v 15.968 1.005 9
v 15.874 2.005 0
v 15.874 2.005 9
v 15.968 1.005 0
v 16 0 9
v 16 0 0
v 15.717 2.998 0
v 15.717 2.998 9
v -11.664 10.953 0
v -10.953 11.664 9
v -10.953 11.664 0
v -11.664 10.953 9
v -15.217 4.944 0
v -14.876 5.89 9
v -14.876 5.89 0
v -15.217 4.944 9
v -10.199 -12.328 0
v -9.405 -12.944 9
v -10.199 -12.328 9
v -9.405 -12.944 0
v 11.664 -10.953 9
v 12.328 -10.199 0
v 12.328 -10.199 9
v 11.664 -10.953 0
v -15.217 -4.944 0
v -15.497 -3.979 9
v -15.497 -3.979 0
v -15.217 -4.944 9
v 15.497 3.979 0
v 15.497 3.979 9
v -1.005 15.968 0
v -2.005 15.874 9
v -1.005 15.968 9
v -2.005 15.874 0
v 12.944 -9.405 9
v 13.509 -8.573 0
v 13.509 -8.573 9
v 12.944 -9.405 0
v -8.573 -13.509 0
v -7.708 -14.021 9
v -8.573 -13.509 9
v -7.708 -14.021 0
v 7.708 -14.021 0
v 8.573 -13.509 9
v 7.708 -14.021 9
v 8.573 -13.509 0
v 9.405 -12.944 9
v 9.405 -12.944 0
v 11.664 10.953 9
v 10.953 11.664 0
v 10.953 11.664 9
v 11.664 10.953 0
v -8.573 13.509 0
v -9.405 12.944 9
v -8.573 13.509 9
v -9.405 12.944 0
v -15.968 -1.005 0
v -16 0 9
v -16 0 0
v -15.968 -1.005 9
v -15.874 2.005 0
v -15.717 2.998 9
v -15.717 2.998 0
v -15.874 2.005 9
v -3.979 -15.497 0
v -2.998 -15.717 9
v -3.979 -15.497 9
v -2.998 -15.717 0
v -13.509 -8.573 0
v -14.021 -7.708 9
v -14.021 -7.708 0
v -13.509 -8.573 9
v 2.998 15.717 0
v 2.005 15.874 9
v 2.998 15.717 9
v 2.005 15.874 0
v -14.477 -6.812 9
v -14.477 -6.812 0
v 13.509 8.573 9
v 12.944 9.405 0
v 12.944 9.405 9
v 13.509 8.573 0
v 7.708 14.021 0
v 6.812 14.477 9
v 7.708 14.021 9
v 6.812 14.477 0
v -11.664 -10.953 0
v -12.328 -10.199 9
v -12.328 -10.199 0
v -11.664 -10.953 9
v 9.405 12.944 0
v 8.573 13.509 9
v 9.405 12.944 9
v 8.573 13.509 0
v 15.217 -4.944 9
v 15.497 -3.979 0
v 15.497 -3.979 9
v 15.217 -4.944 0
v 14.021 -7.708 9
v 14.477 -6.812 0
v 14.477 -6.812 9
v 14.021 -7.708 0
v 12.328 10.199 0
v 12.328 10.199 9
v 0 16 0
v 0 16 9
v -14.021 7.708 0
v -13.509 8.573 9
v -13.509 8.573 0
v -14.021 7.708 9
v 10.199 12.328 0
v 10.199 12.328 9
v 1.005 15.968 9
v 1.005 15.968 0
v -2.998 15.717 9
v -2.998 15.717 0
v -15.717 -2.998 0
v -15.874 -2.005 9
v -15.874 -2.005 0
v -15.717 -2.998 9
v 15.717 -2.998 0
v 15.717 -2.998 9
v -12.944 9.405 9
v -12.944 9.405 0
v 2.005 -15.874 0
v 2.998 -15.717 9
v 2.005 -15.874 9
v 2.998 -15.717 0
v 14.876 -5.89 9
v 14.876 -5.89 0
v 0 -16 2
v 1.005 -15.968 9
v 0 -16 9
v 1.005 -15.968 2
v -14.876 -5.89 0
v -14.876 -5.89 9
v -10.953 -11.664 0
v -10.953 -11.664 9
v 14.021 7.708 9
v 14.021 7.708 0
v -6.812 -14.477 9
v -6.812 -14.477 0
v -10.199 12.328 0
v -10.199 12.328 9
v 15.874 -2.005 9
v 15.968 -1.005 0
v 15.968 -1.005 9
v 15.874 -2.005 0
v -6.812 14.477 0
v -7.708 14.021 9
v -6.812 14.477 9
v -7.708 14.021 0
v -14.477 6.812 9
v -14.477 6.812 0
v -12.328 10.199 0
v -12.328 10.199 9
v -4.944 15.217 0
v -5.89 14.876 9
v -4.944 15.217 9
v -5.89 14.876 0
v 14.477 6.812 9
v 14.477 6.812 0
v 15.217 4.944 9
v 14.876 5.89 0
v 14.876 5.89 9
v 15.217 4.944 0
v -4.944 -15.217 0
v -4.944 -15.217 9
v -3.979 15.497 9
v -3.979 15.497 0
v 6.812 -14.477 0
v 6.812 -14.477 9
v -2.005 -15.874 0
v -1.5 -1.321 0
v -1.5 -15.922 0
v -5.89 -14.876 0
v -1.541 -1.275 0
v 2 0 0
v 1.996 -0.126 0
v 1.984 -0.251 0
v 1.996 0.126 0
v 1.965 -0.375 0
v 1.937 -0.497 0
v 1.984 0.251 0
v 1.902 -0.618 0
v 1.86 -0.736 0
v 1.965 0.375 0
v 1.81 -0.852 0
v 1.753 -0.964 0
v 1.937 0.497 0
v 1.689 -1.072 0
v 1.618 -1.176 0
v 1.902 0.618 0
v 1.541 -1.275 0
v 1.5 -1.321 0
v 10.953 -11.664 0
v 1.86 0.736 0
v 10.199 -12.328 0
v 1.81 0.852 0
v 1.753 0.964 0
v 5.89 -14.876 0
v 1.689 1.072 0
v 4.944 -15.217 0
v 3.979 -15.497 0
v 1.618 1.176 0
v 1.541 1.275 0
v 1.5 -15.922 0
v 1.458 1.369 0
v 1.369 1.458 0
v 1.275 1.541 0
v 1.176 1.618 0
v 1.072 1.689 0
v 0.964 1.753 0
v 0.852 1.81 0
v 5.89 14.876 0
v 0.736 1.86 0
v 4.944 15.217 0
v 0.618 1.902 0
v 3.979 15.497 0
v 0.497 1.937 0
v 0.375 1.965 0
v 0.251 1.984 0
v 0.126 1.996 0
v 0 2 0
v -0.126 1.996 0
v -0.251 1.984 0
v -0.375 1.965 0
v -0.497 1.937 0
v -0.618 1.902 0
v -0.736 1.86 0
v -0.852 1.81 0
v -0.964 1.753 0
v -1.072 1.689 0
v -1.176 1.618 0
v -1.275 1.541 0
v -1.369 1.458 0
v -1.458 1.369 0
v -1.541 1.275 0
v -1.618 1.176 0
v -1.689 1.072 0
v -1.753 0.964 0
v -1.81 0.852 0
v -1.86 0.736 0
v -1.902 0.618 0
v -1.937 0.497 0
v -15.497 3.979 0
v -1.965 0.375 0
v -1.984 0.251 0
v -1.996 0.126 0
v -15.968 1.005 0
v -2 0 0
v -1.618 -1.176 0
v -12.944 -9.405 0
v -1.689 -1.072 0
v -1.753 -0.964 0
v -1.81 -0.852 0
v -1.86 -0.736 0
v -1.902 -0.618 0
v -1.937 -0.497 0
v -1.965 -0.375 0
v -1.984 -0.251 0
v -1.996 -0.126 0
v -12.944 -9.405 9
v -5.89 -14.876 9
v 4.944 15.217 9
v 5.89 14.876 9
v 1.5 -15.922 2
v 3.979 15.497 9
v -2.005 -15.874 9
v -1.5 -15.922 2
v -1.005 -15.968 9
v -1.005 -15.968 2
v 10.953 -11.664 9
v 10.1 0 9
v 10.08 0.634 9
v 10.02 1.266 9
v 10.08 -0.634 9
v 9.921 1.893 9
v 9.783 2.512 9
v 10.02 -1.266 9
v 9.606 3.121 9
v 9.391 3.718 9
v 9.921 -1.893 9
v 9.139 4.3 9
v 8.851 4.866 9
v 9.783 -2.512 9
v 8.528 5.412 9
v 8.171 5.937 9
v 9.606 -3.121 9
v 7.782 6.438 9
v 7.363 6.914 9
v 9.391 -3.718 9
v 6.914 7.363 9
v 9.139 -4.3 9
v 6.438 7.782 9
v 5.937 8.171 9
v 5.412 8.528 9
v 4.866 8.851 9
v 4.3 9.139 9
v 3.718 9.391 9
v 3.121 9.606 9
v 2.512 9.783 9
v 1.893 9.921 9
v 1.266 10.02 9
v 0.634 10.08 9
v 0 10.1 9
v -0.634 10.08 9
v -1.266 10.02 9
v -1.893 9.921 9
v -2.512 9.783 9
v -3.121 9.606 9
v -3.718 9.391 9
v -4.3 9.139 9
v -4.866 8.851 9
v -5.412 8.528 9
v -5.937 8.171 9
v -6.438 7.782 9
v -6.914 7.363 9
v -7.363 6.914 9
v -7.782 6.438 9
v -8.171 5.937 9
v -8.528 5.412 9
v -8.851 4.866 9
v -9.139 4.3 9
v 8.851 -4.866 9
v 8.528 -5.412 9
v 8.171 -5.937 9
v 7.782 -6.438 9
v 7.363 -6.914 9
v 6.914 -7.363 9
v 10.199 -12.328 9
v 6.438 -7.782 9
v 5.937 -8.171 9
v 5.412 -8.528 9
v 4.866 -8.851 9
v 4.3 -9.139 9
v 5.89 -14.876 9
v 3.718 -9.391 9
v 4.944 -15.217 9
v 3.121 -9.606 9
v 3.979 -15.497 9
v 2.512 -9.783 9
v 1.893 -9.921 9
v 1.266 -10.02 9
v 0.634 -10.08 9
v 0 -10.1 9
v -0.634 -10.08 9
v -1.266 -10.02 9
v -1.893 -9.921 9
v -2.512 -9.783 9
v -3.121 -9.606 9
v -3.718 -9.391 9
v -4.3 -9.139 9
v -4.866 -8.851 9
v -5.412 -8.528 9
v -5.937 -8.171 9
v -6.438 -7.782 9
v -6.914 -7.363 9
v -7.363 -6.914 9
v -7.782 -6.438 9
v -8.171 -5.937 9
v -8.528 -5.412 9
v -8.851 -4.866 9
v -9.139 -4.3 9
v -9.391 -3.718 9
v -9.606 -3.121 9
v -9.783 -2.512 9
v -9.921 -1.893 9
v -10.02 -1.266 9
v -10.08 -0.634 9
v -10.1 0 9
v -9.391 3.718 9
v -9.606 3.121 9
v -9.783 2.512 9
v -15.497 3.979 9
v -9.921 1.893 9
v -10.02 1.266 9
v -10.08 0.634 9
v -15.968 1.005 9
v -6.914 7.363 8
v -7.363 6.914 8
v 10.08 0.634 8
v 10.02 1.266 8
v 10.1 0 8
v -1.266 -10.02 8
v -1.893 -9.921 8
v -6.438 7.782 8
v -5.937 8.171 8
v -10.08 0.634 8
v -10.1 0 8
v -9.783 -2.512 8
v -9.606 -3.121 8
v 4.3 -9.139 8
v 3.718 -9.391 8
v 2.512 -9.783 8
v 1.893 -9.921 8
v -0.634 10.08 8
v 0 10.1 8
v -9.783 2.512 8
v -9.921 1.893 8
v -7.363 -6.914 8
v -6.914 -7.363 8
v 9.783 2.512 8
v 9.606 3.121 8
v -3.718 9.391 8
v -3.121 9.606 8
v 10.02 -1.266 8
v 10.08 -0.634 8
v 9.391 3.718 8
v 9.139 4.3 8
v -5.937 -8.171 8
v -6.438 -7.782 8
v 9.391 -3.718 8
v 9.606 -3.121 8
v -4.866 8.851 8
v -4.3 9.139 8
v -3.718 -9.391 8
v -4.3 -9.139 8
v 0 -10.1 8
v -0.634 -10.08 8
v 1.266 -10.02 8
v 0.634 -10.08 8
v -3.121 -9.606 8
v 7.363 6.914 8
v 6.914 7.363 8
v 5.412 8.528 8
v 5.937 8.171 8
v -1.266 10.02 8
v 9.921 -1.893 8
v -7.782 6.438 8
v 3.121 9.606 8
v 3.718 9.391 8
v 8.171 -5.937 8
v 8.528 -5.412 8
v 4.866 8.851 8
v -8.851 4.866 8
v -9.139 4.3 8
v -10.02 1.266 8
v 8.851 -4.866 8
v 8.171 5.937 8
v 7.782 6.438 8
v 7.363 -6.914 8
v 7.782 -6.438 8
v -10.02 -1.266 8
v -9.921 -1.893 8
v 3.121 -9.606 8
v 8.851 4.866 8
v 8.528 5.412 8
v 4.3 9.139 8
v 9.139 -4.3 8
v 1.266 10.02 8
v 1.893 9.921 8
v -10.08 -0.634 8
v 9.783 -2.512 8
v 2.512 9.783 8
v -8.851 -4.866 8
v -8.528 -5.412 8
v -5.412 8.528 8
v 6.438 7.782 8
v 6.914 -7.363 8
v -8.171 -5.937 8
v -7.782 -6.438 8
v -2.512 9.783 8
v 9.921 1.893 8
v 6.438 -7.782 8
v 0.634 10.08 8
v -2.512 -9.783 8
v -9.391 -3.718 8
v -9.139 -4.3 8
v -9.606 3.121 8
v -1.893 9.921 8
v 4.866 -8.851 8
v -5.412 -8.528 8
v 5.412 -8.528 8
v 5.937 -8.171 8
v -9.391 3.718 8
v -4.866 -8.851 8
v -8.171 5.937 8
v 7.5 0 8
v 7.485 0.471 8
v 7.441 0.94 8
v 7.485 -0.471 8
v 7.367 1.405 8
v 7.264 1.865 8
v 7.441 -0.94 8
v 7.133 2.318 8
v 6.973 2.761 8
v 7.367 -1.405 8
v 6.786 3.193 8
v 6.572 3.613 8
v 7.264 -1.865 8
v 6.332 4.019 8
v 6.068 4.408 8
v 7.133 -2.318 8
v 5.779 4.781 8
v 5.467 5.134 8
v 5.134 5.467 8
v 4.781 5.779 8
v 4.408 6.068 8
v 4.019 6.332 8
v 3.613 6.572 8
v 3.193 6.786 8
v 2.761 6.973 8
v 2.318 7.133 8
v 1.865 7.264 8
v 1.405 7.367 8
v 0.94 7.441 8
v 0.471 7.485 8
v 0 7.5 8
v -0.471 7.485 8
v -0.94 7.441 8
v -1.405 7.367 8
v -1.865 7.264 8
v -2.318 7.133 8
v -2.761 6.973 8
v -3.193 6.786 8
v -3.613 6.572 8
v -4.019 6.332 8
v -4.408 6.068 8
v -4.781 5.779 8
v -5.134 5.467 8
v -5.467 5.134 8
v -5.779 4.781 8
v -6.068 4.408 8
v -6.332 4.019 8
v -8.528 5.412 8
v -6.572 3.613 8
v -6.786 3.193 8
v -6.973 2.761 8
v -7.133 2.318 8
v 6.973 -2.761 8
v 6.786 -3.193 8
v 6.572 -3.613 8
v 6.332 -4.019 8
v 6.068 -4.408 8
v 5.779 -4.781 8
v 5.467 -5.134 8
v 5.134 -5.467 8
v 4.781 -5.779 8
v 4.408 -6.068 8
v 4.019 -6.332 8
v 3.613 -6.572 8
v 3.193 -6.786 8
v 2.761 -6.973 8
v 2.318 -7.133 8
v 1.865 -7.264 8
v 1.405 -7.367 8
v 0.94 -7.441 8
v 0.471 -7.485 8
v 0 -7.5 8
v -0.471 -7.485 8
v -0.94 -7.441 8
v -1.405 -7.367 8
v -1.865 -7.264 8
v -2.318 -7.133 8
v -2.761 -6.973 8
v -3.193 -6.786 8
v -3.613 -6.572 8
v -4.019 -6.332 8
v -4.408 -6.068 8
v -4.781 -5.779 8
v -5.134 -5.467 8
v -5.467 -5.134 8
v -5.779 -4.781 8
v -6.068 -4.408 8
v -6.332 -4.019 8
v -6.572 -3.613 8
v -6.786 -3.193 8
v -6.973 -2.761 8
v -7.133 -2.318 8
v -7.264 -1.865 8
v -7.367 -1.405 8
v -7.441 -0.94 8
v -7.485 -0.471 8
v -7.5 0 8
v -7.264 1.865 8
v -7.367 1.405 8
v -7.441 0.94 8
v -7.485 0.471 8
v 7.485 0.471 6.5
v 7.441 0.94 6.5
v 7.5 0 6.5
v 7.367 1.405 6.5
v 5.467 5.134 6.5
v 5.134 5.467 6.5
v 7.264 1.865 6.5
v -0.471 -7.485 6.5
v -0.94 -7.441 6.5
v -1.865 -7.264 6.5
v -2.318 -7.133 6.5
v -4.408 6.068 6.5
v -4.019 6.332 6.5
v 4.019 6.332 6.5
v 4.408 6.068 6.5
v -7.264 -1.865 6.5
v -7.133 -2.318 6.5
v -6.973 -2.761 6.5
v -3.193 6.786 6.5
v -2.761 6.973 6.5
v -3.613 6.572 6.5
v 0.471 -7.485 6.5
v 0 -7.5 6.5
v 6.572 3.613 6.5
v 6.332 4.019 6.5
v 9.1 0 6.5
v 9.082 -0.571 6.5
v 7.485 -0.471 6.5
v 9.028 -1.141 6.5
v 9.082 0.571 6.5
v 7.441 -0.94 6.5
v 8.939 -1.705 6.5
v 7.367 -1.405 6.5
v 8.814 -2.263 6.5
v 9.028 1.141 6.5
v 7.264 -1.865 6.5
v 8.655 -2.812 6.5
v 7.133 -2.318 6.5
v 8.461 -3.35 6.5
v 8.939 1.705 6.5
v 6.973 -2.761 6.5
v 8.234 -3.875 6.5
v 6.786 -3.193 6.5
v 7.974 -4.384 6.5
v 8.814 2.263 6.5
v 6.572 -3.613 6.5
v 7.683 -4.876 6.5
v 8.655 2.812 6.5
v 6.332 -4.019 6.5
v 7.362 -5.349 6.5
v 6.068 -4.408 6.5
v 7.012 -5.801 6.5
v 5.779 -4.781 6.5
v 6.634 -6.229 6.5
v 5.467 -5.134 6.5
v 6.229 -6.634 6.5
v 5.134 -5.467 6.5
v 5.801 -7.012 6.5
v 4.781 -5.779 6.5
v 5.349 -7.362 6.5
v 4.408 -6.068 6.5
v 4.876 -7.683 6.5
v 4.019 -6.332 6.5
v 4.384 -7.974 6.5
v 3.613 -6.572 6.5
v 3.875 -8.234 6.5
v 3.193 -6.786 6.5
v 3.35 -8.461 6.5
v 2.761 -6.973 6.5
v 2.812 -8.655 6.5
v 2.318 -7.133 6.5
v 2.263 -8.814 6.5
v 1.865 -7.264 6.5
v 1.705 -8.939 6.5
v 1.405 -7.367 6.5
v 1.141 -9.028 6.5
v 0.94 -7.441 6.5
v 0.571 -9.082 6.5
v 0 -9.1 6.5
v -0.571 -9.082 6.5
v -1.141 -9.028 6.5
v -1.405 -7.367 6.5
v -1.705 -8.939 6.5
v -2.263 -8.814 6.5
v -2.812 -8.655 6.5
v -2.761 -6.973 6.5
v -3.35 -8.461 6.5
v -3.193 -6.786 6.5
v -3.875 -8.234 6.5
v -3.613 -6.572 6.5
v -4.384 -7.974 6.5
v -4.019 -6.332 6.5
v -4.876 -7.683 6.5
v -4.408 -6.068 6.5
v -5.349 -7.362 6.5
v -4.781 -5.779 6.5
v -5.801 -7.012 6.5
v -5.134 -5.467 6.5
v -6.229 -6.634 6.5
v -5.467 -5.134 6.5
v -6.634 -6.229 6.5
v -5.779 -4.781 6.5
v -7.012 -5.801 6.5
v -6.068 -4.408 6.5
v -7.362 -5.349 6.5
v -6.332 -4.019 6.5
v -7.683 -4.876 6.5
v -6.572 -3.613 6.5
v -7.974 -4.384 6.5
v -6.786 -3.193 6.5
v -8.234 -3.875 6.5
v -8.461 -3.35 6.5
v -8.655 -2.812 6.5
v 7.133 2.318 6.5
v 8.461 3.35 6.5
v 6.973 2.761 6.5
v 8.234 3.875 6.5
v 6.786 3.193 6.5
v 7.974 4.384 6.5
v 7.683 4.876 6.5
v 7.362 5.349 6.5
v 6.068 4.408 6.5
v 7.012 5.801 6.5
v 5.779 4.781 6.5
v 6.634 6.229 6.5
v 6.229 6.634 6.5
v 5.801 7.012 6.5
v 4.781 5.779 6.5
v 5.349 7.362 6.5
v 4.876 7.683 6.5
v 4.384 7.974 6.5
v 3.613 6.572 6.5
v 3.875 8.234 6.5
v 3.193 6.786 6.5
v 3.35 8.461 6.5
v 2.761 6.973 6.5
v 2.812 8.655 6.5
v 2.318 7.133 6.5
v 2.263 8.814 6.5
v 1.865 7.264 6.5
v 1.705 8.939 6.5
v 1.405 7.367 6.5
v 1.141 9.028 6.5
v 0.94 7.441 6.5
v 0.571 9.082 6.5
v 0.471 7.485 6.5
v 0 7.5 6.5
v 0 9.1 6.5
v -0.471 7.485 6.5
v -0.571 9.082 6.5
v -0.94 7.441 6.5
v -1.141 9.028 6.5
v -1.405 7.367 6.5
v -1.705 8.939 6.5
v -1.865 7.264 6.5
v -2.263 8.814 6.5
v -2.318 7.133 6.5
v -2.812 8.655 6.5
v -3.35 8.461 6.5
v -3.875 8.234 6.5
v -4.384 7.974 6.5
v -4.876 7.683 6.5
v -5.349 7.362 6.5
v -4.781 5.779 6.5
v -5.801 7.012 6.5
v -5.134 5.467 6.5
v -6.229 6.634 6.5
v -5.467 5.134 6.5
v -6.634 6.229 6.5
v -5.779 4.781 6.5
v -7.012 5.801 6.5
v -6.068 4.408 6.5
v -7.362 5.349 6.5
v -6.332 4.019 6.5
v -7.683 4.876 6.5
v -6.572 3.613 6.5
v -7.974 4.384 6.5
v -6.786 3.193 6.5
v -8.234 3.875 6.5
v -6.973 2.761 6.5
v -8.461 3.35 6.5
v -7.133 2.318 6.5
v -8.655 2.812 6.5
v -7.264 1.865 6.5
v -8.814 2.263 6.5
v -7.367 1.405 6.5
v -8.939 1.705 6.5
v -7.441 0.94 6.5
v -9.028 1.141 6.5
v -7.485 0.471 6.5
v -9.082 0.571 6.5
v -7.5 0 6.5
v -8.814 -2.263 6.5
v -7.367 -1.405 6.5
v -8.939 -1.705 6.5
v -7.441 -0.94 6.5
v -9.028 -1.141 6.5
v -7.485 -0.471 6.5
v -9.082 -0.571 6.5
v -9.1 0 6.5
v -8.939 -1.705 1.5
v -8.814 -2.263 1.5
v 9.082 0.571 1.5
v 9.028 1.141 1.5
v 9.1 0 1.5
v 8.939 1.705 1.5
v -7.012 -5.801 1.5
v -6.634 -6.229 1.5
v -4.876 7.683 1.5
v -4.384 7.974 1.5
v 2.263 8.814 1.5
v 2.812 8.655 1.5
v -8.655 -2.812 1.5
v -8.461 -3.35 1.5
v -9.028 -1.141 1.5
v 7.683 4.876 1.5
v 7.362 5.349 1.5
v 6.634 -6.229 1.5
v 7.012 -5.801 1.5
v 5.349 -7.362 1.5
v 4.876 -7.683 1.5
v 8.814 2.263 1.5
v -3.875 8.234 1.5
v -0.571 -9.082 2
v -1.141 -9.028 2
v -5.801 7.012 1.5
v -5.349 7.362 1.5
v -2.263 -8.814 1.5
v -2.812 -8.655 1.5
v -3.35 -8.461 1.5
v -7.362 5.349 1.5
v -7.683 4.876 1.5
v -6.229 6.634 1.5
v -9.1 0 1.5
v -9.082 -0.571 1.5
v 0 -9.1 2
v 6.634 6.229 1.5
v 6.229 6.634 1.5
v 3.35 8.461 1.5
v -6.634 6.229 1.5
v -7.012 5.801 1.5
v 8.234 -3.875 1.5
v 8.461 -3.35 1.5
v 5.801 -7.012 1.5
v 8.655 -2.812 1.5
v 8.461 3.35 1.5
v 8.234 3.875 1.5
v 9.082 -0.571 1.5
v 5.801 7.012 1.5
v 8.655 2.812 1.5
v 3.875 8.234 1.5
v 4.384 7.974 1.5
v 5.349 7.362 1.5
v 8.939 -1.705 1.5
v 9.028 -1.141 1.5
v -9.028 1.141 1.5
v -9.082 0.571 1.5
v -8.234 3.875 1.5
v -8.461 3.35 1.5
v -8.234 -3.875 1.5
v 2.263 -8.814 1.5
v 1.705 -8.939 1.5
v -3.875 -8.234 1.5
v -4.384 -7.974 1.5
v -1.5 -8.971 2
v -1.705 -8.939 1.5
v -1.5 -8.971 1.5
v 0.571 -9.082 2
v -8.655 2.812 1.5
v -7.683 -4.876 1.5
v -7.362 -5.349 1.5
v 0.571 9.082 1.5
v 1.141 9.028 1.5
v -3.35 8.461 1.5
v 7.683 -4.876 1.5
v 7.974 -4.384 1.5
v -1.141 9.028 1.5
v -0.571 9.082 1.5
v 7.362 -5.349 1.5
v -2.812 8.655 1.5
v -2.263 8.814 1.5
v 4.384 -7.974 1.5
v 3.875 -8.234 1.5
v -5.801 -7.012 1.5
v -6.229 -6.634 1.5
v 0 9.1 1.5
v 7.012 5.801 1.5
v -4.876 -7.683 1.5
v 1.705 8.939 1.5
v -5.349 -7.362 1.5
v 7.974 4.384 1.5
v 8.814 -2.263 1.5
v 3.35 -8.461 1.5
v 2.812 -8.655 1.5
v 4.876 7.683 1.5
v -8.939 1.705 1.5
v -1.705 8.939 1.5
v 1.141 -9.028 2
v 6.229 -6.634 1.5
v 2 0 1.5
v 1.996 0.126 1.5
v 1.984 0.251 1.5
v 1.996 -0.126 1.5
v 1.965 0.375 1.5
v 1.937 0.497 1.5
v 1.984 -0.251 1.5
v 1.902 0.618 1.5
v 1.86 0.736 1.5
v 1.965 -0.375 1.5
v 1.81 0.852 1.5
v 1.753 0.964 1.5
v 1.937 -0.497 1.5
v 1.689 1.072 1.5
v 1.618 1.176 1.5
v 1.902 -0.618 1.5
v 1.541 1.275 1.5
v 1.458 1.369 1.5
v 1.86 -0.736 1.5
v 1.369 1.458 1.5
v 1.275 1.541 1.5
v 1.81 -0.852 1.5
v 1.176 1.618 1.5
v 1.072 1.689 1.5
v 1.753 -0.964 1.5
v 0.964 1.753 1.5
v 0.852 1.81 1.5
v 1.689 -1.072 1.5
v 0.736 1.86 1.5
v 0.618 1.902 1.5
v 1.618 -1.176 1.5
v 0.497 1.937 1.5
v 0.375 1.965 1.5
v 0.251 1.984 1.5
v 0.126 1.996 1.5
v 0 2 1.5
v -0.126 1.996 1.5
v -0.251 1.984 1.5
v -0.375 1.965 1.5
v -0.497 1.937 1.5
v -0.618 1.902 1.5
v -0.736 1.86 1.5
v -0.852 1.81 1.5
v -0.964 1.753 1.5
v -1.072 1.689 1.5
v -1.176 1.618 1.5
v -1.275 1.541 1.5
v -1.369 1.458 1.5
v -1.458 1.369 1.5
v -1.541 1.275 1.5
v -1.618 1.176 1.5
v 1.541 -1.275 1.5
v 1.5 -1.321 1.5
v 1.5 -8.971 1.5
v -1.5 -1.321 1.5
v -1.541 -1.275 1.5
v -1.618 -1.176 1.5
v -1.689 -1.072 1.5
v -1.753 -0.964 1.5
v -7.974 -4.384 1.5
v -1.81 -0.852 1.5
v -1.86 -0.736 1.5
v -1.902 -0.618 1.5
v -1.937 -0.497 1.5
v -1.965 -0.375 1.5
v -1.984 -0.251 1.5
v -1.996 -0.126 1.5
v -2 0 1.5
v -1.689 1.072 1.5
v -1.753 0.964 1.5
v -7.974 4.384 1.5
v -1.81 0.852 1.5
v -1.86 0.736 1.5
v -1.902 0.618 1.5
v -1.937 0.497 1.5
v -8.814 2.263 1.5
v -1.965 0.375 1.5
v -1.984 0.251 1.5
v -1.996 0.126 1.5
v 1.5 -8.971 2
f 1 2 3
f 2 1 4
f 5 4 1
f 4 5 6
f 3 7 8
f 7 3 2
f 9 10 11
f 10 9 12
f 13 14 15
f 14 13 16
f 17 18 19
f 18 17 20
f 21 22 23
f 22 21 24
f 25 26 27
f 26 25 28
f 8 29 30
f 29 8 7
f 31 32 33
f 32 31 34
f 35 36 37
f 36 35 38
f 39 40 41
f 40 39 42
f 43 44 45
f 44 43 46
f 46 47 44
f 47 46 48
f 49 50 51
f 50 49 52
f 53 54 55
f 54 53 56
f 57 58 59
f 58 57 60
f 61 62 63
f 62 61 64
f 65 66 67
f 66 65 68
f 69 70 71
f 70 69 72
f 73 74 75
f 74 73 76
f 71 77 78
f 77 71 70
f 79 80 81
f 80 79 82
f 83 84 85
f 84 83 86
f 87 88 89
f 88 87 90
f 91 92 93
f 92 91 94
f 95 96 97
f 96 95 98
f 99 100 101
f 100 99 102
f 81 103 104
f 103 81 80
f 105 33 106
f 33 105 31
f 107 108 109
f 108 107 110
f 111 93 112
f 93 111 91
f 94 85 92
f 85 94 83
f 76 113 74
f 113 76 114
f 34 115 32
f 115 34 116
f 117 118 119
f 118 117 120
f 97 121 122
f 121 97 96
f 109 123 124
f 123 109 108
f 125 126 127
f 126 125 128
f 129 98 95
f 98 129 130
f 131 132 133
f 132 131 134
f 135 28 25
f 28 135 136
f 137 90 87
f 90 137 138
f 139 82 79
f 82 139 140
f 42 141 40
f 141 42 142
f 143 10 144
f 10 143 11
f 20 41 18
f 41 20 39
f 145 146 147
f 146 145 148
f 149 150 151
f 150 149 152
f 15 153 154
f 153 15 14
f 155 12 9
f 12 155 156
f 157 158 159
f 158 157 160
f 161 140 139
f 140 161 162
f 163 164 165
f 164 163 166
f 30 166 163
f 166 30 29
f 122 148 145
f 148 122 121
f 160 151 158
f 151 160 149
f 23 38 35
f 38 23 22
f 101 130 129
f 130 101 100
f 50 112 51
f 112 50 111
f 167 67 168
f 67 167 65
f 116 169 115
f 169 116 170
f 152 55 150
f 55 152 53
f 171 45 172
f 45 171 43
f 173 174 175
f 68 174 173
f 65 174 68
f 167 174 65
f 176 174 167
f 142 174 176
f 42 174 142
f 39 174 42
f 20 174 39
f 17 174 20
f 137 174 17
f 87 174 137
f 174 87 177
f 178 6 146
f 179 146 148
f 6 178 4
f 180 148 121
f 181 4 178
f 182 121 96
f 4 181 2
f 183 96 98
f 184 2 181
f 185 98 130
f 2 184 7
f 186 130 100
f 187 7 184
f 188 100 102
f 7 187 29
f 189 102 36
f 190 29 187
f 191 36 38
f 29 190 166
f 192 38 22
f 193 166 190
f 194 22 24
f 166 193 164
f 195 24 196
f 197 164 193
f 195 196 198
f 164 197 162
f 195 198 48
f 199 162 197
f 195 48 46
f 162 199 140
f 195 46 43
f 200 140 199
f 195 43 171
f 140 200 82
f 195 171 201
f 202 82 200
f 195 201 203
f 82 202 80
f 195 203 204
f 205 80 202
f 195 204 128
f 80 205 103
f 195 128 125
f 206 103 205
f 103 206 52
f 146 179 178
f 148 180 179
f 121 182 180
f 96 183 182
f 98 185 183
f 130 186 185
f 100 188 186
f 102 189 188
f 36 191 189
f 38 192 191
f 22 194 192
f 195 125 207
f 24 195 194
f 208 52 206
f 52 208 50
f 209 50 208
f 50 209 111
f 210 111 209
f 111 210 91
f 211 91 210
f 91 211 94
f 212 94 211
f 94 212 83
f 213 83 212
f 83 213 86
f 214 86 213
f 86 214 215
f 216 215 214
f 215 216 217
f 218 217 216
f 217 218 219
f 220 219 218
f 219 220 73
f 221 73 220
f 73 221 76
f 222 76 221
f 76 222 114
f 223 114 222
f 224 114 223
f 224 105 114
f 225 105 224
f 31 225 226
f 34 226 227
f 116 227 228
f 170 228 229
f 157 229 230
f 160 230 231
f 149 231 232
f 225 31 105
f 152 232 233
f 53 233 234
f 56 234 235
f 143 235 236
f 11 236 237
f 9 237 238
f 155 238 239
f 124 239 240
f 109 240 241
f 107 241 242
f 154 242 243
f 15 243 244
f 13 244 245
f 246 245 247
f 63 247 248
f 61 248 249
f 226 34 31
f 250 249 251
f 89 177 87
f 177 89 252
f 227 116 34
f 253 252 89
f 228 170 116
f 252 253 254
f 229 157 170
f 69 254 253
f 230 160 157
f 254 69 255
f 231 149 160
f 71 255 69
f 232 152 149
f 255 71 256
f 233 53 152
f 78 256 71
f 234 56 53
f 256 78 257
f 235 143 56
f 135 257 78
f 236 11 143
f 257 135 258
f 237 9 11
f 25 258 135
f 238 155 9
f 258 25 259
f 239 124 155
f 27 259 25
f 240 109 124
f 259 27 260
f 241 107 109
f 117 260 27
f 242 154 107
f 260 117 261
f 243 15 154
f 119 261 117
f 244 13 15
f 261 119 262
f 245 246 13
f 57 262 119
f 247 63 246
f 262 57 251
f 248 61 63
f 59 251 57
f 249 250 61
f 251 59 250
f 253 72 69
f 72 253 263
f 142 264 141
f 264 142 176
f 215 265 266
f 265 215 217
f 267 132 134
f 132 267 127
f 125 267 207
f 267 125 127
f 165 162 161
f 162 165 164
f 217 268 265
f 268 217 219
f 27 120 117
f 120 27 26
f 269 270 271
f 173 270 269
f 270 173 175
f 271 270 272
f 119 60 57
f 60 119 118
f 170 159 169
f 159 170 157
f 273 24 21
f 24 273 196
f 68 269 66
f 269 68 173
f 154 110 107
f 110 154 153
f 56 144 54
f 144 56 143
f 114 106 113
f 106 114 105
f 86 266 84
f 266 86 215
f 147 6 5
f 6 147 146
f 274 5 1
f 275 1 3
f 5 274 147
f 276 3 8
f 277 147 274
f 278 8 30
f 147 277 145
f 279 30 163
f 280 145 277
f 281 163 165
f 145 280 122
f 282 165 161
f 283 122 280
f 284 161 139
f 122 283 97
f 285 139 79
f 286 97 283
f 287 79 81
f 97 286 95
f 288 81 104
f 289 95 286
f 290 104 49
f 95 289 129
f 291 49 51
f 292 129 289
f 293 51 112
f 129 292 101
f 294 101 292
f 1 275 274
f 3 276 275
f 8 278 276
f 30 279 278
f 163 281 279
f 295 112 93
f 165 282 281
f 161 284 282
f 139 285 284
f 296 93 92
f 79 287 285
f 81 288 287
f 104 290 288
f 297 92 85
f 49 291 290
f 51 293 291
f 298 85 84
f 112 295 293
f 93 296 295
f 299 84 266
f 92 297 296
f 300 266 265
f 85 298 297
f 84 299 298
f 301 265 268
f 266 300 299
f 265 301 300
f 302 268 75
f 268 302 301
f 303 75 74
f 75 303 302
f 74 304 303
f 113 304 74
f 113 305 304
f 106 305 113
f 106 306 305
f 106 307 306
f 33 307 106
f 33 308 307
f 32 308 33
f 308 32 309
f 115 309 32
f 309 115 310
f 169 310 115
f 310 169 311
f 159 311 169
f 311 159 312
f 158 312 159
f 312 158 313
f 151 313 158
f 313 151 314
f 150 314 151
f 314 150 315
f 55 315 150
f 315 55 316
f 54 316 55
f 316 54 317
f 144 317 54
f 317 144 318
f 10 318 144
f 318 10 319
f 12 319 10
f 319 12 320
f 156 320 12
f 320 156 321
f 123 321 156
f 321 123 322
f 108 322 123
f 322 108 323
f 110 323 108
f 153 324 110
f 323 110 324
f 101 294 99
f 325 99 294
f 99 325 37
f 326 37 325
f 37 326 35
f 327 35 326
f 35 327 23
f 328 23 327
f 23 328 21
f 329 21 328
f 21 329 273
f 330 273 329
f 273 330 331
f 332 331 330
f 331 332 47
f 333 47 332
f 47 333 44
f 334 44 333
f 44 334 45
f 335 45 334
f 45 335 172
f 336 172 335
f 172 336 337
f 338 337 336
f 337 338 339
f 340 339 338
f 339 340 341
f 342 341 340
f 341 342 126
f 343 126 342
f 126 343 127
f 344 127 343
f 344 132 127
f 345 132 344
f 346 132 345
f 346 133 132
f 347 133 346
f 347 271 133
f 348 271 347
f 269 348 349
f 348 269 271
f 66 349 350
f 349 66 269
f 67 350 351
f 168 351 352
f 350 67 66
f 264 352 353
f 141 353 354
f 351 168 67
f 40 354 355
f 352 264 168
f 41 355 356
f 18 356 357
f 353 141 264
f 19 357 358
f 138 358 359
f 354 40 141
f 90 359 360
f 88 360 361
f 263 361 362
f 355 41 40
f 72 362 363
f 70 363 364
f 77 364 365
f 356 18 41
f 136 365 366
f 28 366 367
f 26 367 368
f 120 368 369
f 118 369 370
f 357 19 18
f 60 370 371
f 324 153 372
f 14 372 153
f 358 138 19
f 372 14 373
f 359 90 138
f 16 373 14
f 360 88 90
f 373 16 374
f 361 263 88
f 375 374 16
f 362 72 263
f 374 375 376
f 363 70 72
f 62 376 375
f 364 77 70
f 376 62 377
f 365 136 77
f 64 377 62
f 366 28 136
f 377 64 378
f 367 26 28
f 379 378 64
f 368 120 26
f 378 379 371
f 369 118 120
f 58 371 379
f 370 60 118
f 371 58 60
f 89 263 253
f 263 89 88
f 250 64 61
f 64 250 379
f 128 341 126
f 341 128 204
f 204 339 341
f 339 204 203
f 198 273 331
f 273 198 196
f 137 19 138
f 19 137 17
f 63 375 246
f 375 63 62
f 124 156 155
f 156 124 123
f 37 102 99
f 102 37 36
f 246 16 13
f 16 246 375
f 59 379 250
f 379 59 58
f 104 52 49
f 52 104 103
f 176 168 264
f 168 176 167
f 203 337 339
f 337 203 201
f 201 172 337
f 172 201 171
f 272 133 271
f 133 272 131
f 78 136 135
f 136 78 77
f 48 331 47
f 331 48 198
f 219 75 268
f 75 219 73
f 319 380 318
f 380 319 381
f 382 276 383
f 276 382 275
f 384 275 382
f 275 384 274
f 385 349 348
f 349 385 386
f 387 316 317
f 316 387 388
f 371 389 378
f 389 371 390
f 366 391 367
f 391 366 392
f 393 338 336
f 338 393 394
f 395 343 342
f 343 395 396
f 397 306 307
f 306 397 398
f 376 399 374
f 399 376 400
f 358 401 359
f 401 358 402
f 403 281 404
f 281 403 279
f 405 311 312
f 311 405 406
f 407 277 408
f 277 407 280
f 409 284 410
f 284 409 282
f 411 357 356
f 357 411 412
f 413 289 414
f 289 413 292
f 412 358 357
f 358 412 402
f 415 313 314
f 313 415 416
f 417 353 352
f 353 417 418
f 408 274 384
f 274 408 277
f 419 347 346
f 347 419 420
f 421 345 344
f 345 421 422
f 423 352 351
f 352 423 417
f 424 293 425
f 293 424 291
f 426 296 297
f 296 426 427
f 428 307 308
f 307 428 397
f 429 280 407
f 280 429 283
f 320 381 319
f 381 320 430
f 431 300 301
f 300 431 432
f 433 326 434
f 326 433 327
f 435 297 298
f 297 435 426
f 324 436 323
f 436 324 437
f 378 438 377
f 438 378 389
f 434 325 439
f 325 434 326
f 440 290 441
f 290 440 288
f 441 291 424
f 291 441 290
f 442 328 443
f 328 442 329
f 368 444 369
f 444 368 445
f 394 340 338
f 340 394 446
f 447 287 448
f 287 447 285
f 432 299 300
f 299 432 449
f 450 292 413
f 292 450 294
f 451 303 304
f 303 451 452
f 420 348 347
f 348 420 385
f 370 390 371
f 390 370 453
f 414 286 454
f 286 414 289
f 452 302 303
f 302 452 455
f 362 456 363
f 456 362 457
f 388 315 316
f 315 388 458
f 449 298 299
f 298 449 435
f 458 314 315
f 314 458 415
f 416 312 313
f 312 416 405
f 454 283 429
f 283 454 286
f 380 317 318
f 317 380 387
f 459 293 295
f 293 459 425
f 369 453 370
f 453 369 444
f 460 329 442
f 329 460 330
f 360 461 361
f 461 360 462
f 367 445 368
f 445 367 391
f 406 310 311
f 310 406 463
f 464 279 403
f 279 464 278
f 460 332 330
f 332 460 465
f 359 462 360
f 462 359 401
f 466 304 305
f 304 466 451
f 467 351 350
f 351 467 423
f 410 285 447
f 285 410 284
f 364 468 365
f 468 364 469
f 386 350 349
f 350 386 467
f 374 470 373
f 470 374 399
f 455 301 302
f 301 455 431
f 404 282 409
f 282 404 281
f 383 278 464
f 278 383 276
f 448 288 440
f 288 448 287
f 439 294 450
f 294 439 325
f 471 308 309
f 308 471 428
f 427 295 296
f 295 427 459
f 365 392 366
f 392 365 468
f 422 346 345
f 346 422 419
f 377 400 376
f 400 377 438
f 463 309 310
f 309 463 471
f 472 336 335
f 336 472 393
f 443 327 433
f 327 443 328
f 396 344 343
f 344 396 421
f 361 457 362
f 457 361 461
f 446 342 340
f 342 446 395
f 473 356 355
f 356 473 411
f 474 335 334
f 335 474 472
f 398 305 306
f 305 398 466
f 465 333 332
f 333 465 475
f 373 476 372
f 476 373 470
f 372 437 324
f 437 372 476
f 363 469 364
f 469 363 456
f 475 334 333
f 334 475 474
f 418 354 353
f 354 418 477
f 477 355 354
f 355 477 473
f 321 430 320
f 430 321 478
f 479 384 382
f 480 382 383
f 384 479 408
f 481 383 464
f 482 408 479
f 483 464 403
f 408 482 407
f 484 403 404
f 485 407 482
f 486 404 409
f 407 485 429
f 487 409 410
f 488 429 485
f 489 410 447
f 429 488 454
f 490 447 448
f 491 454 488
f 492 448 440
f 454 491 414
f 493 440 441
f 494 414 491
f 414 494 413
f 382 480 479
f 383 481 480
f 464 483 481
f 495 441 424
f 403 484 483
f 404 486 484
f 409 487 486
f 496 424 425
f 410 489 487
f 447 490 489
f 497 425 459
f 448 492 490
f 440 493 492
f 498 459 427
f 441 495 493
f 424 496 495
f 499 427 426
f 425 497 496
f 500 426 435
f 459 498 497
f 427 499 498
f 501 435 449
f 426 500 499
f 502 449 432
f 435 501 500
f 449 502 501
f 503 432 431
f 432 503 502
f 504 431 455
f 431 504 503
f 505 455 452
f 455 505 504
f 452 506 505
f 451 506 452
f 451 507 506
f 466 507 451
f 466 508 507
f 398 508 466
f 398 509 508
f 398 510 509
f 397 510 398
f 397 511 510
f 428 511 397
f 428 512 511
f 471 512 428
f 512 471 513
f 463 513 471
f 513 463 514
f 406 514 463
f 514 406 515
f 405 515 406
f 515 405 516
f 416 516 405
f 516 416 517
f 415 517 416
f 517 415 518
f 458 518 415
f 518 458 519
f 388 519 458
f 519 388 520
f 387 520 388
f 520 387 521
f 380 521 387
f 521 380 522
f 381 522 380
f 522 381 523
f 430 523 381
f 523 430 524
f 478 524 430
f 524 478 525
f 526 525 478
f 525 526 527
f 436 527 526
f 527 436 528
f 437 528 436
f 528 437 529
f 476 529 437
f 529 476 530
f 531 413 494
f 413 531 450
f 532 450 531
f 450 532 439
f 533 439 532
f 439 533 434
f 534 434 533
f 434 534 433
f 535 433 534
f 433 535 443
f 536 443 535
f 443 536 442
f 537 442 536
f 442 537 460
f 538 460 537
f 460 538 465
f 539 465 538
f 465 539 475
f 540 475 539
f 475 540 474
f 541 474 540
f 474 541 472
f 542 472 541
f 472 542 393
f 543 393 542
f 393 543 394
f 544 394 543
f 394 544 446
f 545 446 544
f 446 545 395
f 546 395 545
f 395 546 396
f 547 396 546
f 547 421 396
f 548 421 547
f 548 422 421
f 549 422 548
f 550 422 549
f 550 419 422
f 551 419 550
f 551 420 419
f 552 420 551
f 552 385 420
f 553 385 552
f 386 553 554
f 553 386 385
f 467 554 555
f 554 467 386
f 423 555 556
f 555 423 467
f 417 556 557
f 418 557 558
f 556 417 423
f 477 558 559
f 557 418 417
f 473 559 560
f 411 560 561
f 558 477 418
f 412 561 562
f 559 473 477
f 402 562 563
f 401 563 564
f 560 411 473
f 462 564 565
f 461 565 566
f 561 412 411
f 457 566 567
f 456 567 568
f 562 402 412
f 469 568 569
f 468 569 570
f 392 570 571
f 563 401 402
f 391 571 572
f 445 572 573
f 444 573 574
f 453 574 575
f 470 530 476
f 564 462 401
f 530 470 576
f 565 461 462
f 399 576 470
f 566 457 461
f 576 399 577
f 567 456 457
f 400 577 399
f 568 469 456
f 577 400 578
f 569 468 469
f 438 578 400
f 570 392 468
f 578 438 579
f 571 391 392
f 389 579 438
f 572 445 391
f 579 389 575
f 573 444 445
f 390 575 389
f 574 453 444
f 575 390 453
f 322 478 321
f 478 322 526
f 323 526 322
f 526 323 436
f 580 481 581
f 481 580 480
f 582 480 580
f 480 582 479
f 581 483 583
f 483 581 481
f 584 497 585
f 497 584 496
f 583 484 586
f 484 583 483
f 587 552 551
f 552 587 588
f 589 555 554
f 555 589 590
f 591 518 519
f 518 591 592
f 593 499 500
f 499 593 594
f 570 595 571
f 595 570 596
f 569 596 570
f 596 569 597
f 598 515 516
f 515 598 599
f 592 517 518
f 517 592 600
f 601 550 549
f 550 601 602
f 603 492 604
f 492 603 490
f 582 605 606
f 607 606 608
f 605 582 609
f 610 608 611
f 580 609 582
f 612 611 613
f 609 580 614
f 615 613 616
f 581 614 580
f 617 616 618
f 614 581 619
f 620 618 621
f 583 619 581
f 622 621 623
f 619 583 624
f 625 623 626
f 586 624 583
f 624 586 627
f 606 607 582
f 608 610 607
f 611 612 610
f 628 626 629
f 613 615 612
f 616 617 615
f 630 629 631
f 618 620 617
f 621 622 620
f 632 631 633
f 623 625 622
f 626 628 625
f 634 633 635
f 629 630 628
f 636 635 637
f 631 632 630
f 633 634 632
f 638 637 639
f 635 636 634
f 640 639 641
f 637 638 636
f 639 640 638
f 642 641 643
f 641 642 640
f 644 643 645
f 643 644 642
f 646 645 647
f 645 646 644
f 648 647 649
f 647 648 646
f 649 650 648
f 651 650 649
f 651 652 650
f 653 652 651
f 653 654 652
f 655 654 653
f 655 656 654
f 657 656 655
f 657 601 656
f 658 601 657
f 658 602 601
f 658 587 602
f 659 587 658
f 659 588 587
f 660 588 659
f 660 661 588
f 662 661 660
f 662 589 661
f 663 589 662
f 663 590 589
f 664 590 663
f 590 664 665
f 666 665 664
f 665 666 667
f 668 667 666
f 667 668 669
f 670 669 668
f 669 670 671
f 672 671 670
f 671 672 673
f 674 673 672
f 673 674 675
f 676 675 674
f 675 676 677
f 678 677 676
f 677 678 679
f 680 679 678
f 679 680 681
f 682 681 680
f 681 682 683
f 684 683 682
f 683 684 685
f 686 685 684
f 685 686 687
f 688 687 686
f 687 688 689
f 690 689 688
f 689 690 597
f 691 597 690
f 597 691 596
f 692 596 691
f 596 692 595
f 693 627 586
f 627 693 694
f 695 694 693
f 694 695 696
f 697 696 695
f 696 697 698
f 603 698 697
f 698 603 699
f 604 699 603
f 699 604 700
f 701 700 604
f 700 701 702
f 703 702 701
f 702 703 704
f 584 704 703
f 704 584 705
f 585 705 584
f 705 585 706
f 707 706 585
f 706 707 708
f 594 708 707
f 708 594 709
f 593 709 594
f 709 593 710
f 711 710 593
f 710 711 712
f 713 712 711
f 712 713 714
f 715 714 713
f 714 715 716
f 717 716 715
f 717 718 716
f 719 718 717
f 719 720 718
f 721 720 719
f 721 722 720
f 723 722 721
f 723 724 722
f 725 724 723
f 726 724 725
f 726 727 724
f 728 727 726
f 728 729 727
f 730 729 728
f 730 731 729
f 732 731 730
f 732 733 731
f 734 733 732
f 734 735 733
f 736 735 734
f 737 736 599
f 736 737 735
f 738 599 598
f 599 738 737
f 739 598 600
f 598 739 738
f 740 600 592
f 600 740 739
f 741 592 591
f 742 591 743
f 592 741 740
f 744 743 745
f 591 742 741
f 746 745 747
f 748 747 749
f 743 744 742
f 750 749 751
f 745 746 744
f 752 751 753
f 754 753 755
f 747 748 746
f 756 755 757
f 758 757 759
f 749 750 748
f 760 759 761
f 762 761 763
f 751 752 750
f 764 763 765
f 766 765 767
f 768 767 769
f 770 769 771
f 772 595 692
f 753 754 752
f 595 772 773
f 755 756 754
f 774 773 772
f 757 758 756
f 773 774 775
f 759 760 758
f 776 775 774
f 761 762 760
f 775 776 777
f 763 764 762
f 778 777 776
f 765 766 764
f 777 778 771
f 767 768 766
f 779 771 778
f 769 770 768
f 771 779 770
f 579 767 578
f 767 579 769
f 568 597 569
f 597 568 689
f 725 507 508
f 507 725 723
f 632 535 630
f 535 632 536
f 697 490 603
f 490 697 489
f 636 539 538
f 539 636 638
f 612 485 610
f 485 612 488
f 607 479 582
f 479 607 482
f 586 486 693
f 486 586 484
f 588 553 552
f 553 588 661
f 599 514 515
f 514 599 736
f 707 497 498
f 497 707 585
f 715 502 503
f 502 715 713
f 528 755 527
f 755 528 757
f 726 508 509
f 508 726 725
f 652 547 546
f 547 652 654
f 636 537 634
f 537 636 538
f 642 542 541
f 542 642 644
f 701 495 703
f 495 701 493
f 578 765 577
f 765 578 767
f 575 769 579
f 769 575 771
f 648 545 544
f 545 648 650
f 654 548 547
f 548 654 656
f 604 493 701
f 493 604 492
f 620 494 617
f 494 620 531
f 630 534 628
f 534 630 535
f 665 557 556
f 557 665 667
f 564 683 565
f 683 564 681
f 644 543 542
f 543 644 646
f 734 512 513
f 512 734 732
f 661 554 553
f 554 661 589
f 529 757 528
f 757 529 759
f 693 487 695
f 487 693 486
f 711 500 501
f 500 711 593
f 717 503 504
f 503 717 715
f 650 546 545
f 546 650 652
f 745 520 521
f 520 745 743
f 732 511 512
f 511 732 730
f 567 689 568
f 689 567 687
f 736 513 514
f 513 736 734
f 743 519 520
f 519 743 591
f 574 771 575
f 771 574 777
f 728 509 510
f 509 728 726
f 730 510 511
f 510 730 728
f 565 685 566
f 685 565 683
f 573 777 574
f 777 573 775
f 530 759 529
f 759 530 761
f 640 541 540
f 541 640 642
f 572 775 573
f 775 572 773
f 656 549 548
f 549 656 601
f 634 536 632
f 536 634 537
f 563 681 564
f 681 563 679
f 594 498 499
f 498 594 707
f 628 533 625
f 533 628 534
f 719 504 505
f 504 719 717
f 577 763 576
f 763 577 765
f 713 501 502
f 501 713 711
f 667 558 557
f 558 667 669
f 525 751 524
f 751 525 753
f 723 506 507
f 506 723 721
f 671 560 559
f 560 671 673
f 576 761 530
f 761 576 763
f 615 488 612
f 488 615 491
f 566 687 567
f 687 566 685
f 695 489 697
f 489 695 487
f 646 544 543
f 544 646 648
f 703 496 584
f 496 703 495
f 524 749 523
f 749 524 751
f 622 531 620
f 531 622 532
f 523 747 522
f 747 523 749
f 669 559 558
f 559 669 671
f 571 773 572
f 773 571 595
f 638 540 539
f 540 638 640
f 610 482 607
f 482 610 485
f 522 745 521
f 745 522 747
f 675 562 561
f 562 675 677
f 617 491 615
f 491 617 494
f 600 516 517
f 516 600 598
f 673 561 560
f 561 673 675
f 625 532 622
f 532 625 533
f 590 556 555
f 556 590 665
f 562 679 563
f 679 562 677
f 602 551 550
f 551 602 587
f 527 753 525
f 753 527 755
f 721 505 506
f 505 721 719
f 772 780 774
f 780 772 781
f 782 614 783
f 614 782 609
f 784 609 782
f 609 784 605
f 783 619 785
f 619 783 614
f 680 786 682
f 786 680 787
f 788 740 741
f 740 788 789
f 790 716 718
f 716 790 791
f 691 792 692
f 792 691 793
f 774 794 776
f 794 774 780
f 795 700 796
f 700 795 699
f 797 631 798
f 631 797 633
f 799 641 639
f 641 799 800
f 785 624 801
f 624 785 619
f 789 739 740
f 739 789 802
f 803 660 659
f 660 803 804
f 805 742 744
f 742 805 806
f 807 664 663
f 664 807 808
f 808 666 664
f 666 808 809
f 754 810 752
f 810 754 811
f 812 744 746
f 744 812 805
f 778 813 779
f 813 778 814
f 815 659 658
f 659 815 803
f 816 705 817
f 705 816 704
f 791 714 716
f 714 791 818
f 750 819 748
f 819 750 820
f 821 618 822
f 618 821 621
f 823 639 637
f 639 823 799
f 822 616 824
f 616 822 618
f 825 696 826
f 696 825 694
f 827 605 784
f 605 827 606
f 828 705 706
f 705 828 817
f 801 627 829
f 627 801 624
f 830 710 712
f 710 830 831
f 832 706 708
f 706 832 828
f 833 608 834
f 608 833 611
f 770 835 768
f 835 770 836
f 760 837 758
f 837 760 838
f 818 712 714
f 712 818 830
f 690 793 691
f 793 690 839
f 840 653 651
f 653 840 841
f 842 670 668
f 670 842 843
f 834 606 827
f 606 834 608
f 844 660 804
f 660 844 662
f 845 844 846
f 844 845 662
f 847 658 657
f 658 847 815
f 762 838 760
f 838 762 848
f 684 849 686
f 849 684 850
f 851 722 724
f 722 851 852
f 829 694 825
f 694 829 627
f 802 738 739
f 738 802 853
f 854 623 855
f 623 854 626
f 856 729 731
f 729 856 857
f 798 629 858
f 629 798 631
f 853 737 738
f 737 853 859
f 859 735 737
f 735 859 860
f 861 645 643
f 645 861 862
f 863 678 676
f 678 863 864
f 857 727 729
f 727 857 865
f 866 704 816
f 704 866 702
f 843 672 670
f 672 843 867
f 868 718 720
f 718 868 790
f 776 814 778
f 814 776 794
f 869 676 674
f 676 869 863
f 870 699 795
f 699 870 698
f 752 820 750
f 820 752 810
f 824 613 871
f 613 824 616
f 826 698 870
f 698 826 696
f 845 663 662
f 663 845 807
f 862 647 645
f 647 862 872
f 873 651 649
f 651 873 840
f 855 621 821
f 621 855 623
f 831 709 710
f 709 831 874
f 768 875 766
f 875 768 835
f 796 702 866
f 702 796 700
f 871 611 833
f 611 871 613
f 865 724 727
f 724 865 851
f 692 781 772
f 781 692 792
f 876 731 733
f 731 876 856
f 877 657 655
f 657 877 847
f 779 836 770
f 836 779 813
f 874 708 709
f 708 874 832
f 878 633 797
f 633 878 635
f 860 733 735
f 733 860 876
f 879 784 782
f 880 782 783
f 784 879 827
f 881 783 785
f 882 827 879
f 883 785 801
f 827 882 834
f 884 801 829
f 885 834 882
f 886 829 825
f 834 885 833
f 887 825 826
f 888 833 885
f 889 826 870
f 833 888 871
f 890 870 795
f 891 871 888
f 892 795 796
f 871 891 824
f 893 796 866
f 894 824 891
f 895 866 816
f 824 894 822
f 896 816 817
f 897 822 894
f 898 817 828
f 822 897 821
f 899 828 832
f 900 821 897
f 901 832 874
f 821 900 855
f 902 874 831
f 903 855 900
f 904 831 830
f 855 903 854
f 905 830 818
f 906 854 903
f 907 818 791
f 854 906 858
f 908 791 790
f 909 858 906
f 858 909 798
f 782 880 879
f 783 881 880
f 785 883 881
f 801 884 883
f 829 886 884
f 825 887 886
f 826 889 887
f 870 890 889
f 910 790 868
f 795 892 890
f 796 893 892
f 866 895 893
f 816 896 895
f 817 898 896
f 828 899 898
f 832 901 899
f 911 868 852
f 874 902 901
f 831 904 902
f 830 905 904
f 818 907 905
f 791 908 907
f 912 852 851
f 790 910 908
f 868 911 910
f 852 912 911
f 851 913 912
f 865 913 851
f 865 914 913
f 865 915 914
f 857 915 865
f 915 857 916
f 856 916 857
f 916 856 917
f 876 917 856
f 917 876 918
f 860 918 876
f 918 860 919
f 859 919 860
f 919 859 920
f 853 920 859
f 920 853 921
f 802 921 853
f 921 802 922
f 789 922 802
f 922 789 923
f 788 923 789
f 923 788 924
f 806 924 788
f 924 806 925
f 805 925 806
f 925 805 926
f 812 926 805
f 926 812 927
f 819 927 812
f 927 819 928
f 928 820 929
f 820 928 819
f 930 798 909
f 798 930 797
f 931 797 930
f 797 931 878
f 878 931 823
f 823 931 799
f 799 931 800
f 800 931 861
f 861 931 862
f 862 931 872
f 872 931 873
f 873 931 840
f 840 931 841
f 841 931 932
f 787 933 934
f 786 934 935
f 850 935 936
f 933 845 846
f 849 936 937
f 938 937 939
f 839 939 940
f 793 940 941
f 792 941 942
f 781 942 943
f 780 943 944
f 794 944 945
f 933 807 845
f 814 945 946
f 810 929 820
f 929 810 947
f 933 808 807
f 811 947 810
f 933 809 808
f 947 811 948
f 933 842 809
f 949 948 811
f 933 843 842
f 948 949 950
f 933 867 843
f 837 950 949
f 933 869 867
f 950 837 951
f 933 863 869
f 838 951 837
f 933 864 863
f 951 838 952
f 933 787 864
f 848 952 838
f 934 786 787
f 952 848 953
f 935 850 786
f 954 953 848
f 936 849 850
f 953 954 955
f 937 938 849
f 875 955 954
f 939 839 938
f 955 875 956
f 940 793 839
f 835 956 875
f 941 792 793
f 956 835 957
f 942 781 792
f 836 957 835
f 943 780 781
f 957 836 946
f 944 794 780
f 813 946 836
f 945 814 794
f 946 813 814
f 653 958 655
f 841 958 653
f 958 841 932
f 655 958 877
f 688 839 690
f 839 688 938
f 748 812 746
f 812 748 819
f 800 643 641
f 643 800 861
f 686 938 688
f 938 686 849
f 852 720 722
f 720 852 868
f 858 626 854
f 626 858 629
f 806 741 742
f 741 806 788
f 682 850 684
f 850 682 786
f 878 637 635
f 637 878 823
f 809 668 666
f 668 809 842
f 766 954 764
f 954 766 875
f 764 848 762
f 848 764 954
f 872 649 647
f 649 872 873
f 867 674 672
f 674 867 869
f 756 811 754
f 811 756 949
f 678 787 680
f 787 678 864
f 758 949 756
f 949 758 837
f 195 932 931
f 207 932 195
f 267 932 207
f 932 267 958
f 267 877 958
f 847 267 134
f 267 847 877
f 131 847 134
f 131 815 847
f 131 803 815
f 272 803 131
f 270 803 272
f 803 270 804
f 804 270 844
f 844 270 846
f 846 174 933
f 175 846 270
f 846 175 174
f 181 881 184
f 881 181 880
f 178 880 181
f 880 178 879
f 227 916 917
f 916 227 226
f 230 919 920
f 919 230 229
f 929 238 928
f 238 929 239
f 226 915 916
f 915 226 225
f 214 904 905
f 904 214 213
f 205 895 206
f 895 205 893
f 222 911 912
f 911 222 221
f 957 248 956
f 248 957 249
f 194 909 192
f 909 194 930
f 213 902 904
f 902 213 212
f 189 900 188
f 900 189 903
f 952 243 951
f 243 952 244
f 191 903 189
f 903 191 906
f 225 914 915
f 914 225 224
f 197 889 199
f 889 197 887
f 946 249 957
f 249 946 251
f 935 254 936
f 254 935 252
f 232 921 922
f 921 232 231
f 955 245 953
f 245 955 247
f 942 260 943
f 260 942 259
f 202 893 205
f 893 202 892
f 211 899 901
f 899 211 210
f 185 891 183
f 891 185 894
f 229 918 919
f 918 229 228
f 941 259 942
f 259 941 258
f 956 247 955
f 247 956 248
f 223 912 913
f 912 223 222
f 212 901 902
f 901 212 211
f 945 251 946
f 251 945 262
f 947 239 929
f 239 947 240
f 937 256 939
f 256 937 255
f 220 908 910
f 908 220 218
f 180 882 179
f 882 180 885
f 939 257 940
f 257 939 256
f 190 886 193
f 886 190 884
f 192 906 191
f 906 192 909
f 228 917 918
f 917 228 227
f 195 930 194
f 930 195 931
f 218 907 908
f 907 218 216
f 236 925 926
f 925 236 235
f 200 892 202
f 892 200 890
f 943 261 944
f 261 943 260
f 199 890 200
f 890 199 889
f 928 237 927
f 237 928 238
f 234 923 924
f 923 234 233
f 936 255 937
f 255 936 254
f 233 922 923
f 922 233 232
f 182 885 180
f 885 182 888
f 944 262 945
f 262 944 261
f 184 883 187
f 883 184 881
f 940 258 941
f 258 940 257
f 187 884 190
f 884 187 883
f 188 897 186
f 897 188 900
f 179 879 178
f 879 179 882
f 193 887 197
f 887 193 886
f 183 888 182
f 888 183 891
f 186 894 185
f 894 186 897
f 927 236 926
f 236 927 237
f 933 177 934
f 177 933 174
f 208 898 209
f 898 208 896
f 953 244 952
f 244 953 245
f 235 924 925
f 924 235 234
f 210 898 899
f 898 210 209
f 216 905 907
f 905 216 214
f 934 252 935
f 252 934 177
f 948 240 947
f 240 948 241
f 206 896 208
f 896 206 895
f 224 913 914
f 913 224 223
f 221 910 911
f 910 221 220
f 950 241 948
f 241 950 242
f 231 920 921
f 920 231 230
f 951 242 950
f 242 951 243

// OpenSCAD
/*
 * tap_piezo_droplet_mount.scad
 * =============================
 * 3D-Printable Surface Acoustic Wave (SAW) Droplet Mount for 20mm Piezo.
 * Designed for David Baker (Delta Vector)
 * 
 * Holds a 20mm piezo disc horizontally with the ceramic side facing UP.
 * Features a shallow retaining ring to hold a drop of water directly 
 * on the piezo face for visual resonance tests at 4.5 kHz.
 * 
 * ⚠️ WATERPROOFING NOTE:
 * You MUST paint a thin layer of clear nail polish, silicone, or hot glue over 
 * the solder joints and exposed copper wires before adding water to prevent 
 * the water drop from shorting the Tx signal to GND.
 */

// ─── PARAMETERS ─────────────────────────────────────────────────────────────
$fn = 100;

piezo_dia = 20.0;               // Nominal brass disc diameter (mm)
piezo_brass_thick = 0.25;       // Brass plate thickness (mm)
clearance = 0.2;                // Fit clearance (mm)

base_dia = 32.0;                // Outer base diameter (mm)
base_height = 8.0;              // Total height of the base mount (mm)
lip_height = 1.0;               // Height of the water retention dam (mm)

wire_egress_w = 3.0;            // Wire slot width
wire_egress_d = 2.0;            // Wire slot depth

// Calculated dimensions
inner_fit_dia = piezo_dia + clearance;
ceramic_well_dia = 15.0;        // Open diameter exposing the active area

// ─── MODEL ──────────────────────────────────────────────────────────────────
difference() {
    // Main solid cylinder (base + raised lip)
    cylinder(d=base_dia, h=base_height + lip_height);
    
    // 1. Recess for the 20mm Piezo Brass Flange
    translate([0, 0, base_height])
        cylinder(d=inner_fit_dia, h=lip_height + 0.1);
        
    // 2. Central well to expose the ceramic area to the water drop
    translate([0, 0, base_height - 1.5])
        cylinder(d=ceramic_well_dia, h=2.0);
        
    // 3. Under-shelf relief for solder joints and wires
    translate([0, 0, 1.5])
        cylinder(d=inner_fit_dia - 2, h=base_height - 3.0);
        
    // 4. Wire egress slot running out the bottom side
    translate([-wire_egress_w/2, -base_dia/2 - 1, -0.1])
        cube([wire_egress_w, base_dia/2 + 2, wire_egress_d + 0.1]);
        
    // 5. Central wire pass-through hole leading to the under-shelf relief
    translate([0, 0, -1])
        cylinder(d=4.0, h=base_height + 2);
}
